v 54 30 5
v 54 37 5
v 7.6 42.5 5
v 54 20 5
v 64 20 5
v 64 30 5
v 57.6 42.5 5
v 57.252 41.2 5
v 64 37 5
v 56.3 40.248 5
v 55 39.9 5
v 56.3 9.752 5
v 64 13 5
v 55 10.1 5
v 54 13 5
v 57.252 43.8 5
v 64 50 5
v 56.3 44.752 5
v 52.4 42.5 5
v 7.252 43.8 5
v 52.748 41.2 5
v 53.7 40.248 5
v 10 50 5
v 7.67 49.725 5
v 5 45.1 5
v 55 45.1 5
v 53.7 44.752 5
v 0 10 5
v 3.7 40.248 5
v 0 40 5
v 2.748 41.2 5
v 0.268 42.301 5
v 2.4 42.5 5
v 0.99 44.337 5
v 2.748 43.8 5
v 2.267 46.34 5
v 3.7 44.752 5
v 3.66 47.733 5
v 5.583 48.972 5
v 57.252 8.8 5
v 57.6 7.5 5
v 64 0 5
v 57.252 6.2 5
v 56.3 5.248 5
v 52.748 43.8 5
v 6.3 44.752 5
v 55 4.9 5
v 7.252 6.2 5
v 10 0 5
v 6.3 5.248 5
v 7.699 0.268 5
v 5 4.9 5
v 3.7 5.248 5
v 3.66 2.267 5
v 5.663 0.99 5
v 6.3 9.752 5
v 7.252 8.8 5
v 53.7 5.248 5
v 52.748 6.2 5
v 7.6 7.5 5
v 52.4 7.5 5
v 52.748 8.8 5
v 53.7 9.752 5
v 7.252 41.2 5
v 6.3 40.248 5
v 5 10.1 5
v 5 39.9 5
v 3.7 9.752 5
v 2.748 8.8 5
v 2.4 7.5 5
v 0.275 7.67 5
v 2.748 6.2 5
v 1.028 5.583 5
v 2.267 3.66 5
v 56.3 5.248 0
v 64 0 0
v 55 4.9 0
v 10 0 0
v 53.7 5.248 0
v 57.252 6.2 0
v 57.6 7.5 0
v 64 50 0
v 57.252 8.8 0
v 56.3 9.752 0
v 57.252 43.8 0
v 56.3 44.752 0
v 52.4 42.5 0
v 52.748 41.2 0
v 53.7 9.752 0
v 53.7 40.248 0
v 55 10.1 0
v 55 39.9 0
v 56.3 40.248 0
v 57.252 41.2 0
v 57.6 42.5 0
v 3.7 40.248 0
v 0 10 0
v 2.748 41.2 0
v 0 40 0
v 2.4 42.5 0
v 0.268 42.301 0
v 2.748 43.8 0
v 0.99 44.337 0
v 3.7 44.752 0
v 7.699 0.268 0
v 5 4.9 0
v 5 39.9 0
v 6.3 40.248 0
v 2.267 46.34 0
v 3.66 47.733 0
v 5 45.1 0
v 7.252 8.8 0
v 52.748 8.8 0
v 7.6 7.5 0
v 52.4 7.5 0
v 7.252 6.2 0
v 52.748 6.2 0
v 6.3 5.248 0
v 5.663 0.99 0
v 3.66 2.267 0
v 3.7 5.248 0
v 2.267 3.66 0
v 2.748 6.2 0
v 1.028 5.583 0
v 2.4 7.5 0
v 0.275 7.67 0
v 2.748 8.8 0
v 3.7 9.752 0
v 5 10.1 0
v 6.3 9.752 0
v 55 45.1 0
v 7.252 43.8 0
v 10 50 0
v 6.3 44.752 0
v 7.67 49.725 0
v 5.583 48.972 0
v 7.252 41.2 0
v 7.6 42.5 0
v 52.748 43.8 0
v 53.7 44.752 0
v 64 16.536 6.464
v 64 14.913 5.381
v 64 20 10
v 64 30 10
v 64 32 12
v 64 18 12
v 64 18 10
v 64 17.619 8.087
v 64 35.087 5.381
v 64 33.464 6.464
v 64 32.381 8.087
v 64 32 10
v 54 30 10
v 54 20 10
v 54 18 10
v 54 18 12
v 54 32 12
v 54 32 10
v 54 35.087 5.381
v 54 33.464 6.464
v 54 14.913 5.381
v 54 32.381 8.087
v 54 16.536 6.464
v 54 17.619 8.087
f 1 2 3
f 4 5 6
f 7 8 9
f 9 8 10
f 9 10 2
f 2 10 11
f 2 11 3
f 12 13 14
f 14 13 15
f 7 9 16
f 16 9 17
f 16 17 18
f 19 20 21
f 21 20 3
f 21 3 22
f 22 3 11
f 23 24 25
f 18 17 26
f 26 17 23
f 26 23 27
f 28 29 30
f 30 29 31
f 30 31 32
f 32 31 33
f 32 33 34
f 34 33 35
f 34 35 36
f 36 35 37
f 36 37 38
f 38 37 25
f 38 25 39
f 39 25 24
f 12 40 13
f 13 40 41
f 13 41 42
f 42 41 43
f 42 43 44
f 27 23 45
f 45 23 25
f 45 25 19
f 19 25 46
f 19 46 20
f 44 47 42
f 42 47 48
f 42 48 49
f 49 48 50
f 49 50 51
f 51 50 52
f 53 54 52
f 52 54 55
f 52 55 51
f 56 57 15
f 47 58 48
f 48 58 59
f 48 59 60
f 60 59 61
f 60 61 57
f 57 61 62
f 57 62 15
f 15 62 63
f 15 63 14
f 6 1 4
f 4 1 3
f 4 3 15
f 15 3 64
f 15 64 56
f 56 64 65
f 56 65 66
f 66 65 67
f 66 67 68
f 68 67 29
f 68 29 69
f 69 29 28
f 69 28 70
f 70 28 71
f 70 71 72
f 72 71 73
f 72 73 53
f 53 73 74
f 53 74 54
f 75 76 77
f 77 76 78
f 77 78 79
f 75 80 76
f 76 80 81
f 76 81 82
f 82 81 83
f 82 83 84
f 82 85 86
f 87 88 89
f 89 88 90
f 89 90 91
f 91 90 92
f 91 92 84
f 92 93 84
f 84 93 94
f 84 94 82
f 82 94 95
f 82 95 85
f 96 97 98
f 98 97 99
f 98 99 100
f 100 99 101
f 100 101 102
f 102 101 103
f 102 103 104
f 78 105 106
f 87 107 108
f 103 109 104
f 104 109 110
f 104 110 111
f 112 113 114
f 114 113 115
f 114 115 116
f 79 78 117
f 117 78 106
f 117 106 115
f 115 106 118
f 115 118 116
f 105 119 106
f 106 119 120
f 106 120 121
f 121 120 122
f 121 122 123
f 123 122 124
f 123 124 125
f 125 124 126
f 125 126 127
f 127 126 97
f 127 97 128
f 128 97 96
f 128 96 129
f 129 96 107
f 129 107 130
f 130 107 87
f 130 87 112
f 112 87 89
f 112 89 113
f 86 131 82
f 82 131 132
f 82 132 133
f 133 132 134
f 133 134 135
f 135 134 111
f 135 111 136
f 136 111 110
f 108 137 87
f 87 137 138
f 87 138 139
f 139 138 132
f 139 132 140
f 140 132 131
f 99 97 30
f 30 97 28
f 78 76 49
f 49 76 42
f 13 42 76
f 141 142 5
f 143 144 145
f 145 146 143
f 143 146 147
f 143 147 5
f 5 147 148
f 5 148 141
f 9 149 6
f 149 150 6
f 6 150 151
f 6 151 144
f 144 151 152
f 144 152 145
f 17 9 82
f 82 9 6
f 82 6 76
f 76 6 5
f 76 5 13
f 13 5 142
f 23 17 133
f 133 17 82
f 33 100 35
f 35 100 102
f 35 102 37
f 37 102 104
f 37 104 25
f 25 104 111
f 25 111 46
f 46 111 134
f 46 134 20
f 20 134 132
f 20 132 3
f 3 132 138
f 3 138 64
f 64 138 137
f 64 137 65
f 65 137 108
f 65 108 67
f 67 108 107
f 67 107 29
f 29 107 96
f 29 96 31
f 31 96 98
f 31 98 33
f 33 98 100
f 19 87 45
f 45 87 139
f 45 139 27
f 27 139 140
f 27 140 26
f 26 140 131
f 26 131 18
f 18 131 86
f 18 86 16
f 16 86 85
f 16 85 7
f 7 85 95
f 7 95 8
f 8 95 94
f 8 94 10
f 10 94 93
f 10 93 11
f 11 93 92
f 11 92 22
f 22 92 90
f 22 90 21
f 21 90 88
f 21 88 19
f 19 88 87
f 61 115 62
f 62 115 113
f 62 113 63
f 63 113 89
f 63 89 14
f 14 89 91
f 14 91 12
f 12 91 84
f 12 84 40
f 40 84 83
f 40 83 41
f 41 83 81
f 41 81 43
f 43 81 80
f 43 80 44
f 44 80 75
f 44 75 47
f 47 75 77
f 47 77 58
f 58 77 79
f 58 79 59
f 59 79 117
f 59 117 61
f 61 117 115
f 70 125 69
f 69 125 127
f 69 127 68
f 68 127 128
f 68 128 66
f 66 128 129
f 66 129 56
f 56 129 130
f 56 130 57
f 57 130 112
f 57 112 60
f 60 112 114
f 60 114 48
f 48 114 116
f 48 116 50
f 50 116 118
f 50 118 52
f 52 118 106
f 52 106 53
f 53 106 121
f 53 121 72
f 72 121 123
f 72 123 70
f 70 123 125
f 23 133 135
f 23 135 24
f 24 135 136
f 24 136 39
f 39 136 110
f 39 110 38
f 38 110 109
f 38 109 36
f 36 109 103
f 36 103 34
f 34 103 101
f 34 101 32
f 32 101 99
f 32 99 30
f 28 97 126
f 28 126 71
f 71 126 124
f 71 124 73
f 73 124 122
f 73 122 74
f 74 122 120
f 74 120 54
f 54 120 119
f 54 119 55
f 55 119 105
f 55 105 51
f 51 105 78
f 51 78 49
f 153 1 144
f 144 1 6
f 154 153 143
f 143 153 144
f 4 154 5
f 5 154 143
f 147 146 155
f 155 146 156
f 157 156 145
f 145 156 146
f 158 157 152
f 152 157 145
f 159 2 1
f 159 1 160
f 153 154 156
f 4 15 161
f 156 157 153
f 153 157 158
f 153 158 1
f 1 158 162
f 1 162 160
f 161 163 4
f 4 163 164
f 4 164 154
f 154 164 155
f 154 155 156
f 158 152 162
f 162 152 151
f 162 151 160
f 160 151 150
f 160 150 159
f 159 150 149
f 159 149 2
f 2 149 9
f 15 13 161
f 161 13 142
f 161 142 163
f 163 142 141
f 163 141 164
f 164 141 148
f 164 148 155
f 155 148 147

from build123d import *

# Parameters (mm, degrees)
SKETCH1_W           = 64
SKETCH1_H           = 50
SKETCH1_R           = 2.6
BOSS_EXTRUDE1_DEPTH = 5
FILLET1_R           = 10
BOSS_EXTRUDE2_DEPTH = 10
FILLET2_R           = 5


with BuildPart() as part:
    # Sketch1 → Boss-Extrude1 (new body)
    with BuildSketch(Plane.XY):
        with Locations((32, 25)):
            Rectangle(SKETCH1_W, SKETCH1_H)
        with Locations((5, 42.5)):
            Circle(SKETCH1_R, mode=Mode.SUBTRACT)
        with Locations((55, 42.5)):
            Circle(SKETCH1_R, mode=Mode.SUBTRACT)
        with Locations((55, 7.5)):
            Circle(SKETCH1_R, mode=Mode.SUBTRACT)
        with Locations((5, 7.5)):
            Circle(SKETCH1_R, mode=Mode.SUBTRACT)
    extrude(amount=BOSS_EXTRUDE1_DEPTH)

    # Fillet1
    fillet1_edges = [part.edges().sort_by_distance(p)[0] for p in [
        (0, 50, 2.5),
        (0, 0, 2.5),
    ]]
    fillet(fillet1_edges, radius=FILLET1_R)

    # Sketch3 → Boss-Extrude2 (add)
    with BuildSketch(Plane(origin=(64, 0, 0), x_dir=(0, 0, -1), z_dir=(1, 0, 0))):
        Polygon((-5, 30), (-10, 30), (-10, 20), (-5, 20), (-5, 18), (-12, 18), (-12, 32), (-5, 32), align=None)
    extrude(amount=-BOSS_EXTRUDE2_DEPTH)

    # Fillet2
    fillet2_edges = [part.edges().sort_by_distance(p)[0] for p in [
        (59, 32, 5),
        (59, 18, 5),
    ]]
    fillet(fillet2_edges, radius=FILLET2_R)


solid = part.part
